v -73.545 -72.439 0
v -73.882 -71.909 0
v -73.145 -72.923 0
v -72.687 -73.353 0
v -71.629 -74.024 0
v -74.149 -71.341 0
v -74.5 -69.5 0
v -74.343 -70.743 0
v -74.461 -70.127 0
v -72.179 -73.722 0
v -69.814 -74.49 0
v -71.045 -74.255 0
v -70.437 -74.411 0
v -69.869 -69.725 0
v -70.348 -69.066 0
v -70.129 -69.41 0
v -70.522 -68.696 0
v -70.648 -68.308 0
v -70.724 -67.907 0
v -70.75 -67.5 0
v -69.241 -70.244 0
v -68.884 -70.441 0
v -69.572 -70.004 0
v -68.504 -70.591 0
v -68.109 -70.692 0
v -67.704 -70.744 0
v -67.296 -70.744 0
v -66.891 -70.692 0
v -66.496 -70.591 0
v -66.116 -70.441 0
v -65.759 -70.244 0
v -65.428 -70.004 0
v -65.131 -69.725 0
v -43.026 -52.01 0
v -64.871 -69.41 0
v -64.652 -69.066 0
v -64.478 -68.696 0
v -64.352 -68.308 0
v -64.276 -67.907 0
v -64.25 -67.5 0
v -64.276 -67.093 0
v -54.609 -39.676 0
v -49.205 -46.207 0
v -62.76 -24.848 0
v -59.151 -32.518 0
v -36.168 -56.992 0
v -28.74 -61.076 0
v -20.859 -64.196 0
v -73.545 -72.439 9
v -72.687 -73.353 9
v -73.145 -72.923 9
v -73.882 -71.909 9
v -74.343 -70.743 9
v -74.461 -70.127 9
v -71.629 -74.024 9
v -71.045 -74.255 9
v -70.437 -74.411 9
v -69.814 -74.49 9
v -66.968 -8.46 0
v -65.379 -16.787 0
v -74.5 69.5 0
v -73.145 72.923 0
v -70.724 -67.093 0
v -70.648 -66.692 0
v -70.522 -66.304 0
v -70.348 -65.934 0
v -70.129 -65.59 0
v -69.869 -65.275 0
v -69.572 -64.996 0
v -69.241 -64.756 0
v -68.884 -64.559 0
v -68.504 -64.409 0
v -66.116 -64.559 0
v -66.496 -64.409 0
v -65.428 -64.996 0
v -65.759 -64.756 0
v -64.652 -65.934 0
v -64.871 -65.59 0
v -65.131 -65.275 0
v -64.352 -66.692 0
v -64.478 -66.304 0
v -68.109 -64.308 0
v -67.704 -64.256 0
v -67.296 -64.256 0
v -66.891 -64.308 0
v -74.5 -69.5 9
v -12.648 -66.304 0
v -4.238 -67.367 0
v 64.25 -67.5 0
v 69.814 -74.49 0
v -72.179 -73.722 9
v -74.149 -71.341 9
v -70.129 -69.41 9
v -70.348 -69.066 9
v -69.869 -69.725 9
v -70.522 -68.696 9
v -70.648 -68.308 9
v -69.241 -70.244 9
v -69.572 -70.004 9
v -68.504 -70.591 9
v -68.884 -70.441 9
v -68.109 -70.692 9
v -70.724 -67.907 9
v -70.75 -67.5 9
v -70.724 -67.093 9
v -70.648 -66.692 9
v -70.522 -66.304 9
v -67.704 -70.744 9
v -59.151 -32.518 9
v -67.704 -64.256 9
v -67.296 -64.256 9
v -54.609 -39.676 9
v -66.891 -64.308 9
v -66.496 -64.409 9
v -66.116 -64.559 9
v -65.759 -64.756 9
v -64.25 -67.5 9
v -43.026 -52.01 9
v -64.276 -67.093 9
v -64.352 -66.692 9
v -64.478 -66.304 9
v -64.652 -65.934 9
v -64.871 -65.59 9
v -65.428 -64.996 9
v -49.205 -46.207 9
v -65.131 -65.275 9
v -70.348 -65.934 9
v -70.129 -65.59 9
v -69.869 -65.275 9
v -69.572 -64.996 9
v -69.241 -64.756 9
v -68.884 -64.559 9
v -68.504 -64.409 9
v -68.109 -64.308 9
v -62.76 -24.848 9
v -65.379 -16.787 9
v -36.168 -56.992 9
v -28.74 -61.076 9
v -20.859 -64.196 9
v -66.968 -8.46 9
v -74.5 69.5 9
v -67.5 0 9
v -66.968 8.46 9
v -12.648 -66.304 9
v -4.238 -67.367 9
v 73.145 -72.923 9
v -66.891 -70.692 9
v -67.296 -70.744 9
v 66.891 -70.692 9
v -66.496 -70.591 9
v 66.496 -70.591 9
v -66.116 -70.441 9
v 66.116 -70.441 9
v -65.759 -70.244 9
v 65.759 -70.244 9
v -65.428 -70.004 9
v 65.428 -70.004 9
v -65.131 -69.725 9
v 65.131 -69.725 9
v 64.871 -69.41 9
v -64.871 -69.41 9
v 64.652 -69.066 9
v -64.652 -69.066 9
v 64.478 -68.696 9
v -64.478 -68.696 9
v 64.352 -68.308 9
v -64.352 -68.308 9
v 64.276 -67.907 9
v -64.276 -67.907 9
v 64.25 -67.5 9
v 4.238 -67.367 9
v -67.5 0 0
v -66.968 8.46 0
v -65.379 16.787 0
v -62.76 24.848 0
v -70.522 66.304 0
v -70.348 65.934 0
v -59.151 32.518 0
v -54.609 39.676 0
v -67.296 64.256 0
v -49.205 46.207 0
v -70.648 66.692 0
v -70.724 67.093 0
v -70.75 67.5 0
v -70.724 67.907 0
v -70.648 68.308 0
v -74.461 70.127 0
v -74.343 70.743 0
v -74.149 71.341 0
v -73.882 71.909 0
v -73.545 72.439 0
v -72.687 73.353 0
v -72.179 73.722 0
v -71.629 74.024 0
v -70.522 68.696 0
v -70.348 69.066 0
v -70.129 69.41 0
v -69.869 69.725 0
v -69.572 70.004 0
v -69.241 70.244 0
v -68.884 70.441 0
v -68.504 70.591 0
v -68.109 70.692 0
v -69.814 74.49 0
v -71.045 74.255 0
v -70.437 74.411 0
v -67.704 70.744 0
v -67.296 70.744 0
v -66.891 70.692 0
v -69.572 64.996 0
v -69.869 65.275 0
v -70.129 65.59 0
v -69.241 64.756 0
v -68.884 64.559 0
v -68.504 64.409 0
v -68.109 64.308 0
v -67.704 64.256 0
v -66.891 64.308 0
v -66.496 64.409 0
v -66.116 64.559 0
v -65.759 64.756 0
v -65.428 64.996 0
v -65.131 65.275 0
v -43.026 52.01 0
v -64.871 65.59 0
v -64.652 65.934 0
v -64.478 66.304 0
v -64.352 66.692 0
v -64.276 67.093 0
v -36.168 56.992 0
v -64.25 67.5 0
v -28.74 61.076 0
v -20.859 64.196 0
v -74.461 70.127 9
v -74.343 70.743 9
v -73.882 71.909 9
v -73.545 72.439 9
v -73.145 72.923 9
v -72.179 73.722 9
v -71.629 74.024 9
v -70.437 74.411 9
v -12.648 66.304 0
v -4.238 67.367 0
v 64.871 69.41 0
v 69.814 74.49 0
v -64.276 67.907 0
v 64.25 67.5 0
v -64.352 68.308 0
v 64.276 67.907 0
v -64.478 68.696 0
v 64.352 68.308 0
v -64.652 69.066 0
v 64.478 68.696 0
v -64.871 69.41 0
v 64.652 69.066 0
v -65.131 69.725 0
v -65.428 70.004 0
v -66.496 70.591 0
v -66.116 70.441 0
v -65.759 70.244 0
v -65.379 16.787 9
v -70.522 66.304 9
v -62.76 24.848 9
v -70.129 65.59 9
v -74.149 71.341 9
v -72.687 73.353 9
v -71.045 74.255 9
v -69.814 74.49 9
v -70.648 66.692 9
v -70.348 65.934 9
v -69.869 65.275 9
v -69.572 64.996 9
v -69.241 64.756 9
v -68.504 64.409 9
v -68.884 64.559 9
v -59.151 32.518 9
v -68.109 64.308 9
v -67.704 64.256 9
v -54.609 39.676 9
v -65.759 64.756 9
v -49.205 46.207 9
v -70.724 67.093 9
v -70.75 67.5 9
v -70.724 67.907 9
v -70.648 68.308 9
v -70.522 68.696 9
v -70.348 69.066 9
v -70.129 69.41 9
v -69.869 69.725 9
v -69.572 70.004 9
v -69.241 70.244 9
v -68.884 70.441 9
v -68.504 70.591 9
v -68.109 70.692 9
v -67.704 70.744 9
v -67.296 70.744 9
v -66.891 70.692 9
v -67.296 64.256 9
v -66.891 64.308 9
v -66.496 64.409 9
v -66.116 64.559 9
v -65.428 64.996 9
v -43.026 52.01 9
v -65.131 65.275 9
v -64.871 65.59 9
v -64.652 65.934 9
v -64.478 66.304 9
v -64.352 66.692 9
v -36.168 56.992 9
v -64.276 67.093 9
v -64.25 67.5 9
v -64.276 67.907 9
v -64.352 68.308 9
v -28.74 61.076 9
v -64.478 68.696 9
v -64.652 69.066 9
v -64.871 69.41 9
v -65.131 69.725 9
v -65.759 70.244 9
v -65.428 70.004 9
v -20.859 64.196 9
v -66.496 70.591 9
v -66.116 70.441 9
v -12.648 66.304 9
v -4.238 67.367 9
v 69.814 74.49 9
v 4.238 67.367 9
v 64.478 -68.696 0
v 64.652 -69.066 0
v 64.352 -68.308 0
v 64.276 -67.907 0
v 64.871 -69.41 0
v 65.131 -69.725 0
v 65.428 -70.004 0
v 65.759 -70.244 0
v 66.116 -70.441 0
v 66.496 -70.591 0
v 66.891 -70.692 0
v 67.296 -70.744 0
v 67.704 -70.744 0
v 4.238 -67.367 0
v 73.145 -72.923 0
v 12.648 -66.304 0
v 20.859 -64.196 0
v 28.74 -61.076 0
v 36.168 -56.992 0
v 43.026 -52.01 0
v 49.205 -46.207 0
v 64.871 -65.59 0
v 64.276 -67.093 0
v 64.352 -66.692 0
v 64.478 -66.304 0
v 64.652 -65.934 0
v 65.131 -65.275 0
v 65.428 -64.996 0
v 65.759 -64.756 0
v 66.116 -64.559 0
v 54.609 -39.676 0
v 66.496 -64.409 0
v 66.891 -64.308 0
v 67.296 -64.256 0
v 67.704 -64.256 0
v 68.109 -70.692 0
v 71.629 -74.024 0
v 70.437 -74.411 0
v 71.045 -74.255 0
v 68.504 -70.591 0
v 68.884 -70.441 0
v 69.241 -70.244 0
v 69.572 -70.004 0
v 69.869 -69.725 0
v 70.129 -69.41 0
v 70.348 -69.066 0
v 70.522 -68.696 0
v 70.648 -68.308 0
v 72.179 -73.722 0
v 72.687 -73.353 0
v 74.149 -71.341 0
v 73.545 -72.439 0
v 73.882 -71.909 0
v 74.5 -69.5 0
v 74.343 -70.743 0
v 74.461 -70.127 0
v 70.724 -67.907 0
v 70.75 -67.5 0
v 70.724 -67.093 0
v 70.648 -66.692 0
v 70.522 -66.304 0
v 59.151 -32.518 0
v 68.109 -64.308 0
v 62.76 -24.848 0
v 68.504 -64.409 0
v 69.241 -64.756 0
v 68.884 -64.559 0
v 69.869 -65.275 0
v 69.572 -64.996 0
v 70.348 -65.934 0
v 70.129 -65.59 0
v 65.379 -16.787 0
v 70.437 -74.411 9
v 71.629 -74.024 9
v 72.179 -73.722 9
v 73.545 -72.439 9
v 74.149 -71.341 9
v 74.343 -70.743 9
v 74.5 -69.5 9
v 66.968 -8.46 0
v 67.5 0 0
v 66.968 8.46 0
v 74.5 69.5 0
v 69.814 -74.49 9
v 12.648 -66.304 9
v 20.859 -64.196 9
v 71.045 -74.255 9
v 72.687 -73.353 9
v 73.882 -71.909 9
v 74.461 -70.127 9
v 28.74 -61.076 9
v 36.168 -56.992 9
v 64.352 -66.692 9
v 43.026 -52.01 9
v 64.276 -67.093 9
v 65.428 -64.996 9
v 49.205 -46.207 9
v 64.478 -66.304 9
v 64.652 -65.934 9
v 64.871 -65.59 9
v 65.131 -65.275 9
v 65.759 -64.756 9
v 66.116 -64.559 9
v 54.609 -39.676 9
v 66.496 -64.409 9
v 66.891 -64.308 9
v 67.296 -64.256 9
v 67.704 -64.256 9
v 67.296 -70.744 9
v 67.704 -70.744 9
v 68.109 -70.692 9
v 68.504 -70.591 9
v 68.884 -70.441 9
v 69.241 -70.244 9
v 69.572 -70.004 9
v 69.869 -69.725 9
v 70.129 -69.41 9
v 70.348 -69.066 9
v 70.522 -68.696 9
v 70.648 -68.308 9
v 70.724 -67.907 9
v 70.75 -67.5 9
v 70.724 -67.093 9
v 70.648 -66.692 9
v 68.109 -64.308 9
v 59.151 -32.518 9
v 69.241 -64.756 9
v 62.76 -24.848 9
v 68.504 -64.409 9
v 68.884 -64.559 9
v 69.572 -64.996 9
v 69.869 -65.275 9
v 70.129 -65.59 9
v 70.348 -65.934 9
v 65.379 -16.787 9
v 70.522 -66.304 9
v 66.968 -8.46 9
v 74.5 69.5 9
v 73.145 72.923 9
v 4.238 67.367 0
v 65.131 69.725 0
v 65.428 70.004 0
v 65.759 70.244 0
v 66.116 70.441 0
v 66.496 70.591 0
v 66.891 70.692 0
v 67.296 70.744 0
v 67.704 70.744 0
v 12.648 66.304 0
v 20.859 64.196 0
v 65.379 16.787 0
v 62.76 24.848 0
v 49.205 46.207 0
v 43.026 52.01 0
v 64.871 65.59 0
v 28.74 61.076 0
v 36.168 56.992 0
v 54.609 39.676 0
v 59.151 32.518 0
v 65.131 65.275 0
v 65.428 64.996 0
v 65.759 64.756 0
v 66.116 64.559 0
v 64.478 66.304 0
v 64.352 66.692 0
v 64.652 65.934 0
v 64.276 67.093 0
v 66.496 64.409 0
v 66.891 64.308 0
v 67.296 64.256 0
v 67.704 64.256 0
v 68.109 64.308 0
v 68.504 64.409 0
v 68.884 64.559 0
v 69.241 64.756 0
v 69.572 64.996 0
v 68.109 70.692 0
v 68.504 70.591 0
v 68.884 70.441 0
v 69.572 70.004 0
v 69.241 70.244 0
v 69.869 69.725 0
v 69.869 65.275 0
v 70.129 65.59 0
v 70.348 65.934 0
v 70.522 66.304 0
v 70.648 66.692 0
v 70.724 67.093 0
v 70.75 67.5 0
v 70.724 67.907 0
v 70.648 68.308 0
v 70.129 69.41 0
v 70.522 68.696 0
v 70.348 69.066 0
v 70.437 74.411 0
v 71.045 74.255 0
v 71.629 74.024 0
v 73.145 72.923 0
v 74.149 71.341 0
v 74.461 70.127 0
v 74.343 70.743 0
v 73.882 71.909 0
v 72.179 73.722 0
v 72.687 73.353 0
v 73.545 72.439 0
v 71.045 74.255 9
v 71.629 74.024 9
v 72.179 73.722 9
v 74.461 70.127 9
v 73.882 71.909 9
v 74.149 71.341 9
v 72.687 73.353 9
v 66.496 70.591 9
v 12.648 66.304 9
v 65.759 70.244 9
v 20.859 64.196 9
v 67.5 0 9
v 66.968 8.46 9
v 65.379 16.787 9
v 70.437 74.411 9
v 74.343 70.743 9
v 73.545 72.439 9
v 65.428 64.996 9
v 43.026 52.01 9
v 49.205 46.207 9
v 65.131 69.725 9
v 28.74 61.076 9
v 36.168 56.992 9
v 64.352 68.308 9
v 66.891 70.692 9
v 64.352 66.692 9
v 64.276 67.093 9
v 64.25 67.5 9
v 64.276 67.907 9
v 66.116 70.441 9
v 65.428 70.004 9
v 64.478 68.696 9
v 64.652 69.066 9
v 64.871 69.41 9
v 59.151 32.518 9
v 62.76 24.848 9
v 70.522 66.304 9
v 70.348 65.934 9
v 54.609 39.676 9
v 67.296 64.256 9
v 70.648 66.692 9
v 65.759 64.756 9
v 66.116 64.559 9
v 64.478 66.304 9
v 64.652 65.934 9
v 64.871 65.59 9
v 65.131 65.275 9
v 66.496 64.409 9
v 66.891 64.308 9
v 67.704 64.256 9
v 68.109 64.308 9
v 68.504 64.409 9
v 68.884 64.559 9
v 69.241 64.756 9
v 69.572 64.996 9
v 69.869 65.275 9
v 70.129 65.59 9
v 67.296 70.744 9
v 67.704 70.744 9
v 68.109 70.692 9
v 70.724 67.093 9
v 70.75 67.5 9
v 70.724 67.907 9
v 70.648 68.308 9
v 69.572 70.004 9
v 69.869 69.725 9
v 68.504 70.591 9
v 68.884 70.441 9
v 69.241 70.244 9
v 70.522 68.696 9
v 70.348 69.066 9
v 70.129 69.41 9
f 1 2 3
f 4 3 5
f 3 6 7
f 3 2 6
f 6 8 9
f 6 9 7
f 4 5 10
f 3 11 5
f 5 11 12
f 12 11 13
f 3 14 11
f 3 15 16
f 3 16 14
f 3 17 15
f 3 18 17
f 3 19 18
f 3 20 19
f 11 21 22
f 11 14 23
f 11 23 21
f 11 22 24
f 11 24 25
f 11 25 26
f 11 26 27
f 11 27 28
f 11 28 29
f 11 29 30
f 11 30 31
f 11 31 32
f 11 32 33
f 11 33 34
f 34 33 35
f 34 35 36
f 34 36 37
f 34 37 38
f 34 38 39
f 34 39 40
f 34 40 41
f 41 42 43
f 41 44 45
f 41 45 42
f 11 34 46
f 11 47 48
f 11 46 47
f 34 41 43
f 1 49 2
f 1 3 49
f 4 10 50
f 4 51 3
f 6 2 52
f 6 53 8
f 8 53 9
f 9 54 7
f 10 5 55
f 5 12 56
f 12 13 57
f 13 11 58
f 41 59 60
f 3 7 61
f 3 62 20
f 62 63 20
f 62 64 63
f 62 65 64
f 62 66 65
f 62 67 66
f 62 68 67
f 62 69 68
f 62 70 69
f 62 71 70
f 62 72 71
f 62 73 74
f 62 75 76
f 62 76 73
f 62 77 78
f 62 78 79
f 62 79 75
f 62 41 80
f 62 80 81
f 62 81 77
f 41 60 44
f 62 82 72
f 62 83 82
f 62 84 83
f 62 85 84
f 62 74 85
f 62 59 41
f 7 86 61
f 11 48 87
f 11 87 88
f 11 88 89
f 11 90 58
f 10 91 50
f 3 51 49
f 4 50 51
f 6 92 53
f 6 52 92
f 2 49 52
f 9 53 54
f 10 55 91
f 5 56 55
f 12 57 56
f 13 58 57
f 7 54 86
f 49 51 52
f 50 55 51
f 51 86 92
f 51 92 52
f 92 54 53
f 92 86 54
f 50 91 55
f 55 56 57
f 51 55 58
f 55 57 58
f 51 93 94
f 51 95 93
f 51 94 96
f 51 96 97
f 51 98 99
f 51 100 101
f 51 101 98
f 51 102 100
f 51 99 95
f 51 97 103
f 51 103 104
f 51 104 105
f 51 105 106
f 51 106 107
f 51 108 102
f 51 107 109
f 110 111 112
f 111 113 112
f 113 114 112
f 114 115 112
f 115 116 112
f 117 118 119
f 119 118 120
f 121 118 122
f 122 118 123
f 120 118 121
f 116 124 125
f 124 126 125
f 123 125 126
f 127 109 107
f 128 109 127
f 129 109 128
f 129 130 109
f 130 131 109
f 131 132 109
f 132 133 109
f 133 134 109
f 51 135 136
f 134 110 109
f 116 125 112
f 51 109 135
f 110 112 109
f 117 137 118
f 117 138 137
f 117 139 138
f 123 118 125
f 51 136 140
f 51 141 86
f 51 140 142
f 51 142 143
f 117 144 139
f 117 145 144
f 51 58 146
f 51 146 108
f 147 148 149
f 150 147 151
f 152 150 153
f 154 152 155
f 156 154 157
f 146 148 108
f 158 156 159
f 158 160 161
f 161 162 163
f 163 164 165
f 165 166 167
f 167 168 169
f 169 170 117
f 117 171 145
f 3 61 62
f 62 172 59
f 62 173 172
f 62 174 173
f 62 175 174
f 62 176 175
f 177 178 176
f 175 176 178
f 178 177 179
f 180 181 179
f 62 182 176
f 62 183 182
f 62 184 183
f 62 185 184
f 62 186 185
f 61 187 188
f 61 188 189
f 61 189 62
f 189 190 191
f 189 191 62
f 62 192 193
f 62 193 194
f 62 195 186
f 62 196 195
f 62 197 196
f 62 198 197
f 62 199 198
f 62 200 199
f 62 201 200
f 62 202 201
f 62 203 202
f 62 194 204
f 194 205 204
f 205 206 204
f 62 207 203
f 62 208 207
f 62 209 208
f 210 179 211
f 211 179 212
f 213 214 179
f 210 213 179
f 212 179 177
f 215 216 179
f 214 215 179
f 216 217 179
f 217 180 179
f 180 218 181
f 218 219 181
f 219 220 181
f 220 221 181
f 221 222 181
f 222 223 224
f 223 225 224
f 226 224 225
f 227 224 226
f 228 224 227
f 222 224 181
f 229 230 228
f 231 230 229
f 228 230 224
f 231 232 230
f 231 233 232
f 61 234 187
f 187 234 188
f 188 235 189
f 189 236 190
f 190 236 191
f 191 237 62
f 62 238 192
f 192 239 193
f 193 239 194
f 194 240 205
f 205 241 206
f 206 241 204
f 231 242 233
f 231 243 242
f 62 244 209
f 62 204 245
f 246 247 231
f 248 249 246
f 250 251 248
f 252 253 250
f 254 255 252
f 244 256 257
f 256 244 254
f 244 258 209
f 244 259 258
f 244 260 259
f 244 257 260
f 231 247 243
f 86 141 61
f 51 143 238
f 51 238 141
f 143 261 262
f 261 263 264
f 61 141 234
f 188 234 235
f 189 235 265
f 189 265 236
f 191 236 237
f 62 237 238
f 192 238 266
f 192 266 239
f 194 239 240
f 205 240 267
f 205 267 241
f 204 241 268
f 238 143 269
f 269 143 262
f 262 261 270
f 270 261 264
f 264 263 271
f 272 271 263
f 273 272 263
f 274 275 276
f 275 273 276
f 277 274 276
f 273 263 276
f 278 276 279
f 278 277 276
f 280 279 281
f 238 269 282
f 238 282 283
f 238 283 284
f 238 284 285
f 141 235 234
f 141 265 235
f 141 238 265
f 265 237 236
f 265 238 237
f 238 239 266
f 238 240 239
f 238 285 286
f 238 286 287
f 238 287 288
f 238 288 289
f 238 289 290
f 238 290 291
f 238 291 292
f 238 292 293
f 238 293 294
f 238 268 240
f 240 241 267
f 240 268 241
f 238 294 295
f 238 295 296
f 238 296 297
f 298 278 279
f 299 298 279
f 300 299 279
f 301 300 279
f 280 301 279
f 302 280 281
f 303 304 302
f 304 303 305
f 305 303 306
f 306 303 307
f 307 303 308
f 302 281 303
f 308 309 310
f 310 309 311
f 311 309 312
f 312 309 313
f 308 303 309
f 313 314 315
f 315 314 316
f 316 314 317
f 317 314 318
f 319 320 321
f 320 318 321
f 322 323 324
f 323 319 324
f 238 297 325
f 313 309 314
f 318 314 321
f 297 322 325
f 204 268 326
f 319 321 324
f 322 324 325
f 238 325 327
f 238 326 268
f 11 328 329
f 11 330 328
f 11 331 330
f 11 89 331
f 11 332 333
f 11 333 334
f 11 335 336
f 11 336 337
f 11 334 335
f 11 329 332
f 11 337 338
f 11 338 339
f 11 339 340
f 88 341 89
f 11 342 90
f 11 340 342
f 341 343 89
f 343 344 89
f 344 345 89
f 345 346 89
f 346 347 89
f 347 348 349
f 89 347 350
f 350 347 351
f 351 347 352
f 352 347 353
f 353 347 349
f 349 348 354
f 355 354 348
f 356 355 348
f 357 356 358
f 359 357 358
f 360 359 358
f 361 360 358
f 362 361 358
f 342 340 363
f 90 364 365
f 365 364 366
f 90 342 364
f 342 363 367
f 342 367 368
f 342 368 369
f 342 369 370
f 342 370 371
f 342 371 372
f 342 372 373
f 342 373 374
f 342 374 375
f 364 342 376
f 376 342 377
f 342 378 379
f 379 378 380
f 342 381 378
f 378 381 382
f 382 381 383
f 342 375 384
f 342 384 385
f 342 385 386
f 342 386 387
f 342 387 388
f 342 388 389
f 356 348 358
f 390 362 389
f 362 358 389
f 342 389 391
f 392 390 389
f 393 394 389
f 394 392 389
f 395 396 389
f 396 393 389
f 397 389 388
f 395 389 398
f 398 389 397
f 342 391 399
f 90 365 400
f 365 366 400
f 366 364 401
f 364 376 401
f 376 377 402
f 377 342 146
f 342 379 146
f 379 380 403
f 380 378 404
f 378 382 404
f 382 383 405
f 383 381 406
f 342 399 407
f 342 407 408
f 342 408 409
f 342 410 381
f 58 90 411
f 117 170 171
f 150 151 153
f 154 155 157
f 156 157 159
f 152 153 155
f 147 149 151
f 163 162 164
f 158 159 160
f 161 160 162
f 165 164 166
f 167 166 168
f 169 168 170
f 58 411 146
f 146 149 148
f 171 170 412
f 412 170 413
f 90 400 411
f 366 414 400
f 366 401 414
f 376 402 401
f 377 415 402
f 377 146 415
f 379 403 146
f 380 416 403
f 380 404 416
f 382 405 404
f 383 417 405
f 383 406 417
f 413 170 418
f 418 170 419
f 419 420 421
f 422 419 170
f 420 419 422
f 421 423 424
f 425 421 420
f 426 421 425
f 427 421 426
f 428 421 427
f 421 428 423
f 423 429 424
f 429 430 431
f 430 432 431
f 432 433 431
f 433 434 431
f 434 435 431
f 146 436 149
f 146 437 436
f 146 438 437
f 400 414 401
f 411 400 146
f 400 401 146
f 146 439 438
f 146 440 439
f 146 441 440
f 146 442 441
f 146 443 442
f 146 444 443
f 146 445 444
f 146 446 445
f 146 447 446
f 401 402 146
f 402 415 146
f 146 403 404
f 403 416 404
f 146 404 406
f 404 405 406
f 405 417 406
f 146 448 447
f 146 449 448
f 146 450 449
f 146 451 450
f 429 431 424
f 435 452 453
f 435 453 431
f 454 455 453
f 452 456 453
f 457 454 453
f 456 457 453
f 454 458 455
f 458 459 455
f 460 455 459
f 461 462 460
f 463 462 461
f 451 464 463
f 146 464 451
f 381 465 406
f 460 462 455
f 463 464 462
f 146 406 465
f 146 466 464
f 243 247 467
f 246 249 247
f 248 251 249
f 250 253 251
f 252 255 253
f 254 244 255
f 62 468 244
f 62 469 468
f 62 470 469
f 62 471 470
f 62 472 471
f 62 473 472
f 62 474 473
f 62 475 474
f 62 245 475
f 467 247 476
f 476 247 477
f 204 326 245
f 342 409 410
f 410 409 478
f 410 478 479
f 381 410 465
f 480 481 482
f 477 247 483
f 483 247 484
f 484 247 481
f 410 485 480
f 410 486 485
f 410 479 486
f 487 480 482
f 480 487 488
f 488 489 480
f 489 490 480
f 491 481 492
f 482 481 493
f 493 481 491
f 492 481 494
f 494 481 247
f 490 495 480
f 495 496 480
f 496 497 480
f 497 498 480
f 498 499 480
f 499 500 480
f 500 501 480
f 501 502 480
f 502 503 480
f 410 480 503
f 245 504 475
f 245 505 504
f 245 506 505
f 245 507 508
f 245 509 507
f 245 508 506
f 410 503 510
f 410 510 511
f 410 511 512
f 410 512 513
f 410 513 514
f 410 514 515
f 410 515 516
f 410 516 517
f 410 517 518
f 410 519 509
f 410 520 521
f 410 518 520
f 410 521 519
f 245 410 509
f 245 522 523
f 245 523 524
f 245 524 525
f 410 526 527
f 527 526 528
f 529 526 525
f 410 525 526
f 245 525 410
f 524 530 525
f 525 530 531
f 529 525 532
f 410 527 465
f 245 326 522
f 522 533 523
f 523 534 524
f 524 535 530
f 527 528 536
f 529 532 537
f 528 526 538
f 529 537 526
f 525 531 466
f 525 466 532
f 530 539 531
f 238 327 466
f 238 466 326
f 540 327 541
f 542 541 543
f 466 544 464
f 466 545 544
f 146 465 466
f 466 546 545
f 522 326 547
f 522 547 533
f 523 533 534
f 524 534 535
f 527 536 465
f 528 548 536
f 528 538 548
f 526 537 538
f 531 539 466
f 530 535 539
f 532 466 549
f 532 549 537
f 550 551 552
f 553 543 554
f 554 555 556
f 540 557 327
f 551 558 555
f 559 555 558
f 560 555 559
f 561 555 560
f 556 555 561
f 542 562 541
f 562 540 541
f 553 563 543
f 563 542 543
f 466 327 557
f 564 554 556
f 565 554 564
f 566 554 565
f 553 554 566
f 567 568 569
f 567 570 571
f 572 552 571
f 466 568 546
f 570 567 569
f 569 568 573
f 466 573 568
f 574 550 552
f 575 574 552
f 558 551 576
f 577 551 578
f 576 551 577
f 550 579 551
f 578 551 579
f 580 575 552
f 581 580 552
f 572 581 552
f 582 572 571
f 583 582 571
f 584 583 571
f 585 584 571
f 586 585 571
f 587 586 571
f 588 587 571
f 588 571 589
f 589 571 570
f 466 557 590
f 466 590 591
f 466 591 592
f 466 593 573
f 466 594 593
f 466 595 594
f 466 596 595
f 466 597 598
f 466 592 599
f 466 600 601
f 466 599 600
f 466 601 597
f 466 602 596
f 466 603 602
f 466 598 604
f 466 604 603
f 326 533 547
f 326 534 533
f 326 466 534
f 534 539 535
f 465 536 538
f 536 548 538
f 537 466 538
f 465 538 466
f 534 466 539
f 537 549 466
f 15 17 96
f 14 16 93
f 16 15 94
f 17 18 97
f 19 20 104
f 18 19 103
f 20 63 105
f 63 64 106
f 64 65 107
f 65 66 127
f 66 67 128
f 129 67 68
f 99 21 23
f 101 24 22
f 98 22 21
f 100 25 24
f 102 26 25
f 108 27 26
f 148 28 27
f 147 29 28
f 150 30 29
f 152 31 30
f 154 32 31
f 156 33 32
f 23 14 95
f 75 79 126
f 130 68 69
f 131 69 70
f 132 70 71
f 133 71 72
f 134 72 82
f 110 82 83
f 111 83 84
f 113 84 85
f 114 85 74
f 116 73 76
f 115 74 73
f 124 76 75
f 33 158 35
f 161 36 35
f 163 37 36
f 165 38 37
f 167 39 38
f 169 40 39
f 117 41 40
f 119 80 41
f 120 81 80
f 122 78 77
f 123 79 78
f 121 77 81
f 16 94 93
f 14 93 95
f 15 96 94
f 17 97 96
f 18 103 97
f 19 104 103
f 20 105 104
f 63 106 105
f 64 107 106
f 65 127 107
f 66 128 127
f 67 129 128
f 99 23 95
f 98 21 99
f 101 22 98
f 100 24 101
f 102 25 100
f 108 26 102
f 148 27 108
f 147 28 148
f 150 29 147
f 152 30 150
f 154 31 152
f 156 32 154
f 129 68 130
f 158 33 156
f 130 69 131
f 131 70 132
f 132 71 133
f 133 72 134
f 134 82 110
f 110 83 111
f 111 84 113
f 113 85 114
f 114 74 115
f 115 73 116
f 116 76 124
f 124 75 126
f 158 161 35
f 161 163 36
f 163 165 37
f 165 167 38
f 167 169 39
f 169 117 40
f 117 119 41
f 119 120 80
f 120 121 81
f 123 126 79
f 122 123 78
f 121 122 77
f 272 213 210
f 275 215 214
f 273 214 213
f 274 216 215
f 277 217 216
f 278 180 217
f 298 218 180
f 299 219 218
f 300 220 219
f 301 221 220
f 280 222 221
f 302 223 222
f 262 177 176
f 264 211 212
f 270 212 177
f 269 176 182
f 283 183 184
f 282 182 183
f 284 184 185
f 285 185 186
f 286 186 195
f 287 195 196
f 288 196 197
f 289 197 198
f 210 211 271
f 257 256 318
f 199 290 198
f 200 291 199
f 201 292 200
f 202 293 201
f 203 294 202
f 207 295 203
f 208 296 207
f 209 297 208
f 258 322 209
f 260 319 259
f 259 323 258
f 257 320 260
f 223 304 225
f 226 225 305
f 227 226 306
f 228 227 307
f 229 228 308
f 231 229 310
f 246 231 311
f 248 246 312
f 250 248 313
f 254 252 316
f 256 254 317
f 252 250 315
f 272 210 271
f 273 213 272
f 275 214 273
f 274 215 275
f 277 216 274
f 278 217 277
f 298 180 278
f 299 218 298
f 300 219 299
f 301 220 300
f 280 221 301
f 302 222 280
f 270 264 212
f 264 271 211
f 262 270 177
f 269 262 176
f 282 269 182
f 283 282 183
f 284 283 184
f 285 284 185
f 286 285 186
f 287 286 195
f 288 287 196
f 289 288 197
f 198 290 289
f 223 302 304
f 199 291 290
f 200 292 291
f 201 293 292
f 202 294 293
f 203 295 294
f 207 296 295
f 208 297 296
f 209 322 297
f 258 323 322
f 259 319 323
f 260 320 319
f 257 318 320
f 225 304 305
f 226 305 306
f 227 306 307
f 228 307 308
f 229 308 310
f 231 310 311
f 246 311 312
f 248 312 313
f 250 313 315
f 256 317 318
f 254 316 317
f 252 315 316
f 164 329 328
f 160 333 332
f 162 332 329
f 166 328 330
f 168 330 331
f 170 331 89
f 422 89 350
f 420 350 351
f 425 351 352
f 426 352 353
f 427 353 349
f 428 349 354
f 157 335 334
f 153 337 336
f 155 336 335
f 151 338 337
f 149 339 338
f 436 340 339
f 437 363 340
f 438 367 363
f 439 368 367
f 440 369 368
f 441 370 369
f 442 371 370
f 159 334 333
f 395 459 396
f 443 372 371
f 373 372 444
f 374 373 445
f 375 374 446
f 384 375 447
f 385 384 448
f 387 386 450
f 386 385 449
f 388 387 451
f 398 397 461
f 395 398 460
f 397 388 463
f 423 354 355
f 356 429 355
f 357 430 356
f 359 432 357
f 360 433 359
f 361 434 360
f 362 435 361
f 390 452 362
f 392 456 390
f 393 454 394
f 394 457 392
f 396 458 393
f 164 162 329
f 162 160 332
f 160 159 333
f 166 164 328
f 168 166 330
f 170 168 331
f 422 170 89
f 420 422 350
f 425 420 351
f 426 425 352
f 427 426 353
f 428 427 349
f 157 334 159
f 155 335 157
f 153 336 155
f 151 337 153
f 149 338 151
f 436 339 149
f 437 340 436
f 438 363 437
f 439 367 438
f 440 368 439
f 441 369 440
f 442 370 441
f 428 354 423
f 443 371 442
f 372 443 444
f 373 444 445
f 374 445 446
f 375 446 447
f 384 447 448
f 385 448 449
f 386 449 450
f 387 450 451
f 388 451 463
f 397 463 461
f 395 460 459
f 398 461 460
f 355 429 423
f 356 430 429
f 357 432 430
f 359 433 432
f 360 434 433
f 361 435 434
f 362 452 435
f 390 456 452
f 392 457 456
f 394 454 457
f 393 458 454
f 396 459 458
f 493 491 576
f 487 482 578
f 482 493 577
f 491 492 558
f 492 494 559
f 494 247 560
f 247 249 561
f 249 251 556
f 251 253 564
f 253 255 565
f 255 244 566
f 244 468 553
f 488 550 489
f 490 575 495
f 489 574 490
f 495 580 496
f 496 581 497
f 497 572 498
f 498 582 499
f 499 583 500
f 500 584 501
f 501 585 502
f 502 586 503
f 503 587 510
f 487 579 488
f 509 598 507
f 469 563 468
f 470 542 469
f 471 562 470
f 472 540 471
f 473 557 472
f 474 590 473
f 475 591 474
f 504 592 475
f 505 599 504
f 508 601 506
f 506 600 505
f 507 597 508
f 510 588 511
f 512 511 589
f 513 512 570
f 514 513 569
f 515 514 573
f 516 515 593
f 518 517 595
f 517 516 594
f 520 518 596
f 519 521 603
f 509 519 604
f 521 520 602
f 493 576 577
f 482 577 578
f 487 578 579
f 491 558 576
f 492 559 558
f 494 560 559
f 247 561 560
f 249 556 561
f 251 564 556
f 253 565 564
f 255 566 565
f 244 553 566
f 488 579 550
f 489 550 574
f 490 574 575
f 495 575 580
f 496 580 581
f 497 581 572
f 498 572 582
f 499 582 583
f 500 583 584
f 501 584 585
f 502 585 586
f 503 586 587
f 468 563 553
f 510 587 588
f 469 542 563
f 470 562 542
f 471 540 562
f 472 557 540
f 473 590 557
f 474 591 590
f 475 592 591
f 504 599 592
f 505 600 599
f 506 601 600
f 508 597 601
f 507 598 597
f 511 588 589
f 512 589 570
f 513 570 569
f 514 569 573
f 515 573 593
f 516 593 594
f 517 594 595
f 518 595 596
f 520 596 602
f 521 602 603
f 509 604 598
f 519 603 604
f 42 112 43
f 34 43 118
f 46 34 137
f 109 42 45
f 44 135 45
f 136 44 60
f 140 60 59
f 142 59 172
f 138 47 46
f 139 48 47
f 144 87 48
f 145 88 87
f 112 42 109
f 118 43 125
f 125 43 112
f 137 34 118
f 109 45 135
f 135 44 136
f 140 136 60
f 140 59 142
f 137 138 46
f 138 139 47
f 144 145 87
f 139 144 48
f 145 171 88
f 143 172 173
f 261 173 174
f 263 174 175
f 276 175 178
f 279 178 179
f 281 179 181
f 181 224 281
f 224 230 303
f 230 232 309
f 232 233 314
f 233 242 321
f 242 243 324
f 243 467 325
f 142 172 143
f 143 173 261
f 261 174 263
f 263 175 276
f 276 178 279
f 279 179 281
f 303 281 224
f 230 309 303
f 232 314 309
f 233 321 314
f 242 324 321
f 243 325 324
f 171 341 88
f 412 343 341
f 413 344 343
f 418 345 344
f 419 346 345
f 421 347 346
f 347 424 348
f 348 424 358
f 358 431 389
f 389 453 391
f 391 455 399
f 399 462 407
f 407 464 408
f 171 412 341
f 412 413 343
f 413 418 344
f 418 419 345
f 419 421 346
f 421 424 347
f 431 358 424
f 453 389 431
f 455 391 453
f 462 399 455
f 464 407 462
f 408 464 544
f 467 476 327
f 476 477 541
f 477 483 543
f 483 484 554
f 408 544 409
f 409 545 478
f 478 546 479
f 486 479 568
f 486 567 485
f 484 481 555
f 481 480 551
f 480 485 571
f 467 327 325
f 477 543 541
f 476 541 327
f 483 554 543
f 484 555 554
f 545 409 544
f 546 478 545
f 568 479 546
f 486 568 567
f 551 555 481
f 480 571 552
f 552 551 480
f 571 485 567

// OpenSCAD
$fn = 50;

difference() {
	union() {
		hull() {
			translate(v = [-69.5, 69.5, 0]) {
				cylinder(h = 9, r = 5);
			}
			translate(v = [69.5, 69.5, 0]) {
				cylinder(h = 9, r = 5);
			}
			translate(v = [-69.5, -69.5, 0]) {
				cylinder(h = 9, r = 5);
			}
			translate(v = [69.5, -69.5, 0]) {
				cylinder(h = 9, r = 5);
			}
		}
	}
	union() {
		translate(v = [-67.5, -67.5, -100.0]) {
			cylinder(h = 200, r = 3.25);
		}
		translate(v = [-67.5, 67.5, -100.0]) {
			cylinder(h = 200, r = 3.25);
		}
		translate(v = [67.5, -67.5, -100.0]) {
			cylinder(h = 200, r = 3.25);
		}
		translate(v = [67.5, 67.5, -100.0]) {
			cylinder(h = 200, r = 3.25);
		}
		translate(v = [-67.5, -67.5, -100.0]) {
			cylinder(h = 200, r = 1.8);
		}
		translate(v = [-67.5, 67.5, -100.0]) {
			cylinder(h = 200, r = 1.8);
		}
		translate(v = [67.5, -67.5, -100.0]) {
			cylinder(h = 200, r = 1.8);
		}
		translate(v = [67.5, 67.5, -100.0]) {
			cylinder(h = 200, r = 1.8);
		}
		cylinder(h = 9, r = 67.5);
	}
}
